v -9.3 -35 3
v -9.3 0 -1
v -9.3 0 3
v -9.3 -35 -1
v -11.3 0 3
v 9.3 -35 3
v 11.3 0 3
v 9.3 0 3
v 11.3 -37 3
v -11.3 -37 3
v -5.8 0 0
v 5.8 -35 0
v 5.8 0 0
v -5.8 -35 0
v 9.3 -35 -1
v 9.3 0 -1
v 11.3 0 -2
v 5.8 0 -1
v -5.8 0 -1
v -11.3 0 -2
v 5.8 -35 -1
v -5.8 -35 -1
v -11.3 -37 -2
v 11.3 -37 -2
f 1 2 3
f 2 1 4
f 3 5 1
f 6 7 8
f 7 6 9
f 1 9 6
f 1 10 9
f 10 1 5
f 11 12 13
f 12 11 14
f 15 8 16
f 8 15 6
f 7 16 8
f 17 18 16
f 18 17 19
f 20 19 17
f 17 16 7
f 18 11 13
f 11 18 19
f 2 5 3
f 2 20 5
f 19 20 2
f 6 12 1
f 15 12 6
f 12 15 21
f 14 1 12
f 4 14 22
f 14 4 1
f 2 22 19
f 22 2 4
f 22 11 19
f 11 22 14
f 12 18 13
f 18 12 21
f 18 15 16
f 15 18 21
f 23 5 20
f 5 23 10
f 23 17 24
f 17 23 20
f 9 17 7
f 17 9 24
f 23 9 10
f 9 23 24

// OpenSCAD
mirror ([1, 0, 0]) {
  difference () {
    translate ([0, -37/2, 1/2]) {
      cube ([22.6, 37, 5], center=true);
    }
    translate ([0, -35/2, 3/2]) {
      union () {
        cube ([18.6, 35, 3], center=true);
        translate ([7.550000000000001, 0, -3/2]) {
          cube ([3.5, 35, 2], center=true);
        }
        translate ([-7.550000000000001, 0, -3/2]) {
          cube ([3.5, 35, 2], center=true);
        }
      }
    }
    translate ([7, 0, 6]) {
      rotate ([90.0,0.0,0.0]) {
        union () {
          translate ([0, 0, 10]) {
            minkowski () {
              cylinder ($fn=100, h=10, r=0.95, center=true);
              cube ([7.34, 1.56, 10], center=true);
            }
          }
        }
      }
    }
    translate ([-7, 0, 6]) {
      rotate ([90.0,0.0,0.0]) {
        union () {
          translate ([0, 0, 10]) {
            cylinder ($fn=100, h=20, r=3.2, center=true);
          }
        }
      }
    }
  }
}
